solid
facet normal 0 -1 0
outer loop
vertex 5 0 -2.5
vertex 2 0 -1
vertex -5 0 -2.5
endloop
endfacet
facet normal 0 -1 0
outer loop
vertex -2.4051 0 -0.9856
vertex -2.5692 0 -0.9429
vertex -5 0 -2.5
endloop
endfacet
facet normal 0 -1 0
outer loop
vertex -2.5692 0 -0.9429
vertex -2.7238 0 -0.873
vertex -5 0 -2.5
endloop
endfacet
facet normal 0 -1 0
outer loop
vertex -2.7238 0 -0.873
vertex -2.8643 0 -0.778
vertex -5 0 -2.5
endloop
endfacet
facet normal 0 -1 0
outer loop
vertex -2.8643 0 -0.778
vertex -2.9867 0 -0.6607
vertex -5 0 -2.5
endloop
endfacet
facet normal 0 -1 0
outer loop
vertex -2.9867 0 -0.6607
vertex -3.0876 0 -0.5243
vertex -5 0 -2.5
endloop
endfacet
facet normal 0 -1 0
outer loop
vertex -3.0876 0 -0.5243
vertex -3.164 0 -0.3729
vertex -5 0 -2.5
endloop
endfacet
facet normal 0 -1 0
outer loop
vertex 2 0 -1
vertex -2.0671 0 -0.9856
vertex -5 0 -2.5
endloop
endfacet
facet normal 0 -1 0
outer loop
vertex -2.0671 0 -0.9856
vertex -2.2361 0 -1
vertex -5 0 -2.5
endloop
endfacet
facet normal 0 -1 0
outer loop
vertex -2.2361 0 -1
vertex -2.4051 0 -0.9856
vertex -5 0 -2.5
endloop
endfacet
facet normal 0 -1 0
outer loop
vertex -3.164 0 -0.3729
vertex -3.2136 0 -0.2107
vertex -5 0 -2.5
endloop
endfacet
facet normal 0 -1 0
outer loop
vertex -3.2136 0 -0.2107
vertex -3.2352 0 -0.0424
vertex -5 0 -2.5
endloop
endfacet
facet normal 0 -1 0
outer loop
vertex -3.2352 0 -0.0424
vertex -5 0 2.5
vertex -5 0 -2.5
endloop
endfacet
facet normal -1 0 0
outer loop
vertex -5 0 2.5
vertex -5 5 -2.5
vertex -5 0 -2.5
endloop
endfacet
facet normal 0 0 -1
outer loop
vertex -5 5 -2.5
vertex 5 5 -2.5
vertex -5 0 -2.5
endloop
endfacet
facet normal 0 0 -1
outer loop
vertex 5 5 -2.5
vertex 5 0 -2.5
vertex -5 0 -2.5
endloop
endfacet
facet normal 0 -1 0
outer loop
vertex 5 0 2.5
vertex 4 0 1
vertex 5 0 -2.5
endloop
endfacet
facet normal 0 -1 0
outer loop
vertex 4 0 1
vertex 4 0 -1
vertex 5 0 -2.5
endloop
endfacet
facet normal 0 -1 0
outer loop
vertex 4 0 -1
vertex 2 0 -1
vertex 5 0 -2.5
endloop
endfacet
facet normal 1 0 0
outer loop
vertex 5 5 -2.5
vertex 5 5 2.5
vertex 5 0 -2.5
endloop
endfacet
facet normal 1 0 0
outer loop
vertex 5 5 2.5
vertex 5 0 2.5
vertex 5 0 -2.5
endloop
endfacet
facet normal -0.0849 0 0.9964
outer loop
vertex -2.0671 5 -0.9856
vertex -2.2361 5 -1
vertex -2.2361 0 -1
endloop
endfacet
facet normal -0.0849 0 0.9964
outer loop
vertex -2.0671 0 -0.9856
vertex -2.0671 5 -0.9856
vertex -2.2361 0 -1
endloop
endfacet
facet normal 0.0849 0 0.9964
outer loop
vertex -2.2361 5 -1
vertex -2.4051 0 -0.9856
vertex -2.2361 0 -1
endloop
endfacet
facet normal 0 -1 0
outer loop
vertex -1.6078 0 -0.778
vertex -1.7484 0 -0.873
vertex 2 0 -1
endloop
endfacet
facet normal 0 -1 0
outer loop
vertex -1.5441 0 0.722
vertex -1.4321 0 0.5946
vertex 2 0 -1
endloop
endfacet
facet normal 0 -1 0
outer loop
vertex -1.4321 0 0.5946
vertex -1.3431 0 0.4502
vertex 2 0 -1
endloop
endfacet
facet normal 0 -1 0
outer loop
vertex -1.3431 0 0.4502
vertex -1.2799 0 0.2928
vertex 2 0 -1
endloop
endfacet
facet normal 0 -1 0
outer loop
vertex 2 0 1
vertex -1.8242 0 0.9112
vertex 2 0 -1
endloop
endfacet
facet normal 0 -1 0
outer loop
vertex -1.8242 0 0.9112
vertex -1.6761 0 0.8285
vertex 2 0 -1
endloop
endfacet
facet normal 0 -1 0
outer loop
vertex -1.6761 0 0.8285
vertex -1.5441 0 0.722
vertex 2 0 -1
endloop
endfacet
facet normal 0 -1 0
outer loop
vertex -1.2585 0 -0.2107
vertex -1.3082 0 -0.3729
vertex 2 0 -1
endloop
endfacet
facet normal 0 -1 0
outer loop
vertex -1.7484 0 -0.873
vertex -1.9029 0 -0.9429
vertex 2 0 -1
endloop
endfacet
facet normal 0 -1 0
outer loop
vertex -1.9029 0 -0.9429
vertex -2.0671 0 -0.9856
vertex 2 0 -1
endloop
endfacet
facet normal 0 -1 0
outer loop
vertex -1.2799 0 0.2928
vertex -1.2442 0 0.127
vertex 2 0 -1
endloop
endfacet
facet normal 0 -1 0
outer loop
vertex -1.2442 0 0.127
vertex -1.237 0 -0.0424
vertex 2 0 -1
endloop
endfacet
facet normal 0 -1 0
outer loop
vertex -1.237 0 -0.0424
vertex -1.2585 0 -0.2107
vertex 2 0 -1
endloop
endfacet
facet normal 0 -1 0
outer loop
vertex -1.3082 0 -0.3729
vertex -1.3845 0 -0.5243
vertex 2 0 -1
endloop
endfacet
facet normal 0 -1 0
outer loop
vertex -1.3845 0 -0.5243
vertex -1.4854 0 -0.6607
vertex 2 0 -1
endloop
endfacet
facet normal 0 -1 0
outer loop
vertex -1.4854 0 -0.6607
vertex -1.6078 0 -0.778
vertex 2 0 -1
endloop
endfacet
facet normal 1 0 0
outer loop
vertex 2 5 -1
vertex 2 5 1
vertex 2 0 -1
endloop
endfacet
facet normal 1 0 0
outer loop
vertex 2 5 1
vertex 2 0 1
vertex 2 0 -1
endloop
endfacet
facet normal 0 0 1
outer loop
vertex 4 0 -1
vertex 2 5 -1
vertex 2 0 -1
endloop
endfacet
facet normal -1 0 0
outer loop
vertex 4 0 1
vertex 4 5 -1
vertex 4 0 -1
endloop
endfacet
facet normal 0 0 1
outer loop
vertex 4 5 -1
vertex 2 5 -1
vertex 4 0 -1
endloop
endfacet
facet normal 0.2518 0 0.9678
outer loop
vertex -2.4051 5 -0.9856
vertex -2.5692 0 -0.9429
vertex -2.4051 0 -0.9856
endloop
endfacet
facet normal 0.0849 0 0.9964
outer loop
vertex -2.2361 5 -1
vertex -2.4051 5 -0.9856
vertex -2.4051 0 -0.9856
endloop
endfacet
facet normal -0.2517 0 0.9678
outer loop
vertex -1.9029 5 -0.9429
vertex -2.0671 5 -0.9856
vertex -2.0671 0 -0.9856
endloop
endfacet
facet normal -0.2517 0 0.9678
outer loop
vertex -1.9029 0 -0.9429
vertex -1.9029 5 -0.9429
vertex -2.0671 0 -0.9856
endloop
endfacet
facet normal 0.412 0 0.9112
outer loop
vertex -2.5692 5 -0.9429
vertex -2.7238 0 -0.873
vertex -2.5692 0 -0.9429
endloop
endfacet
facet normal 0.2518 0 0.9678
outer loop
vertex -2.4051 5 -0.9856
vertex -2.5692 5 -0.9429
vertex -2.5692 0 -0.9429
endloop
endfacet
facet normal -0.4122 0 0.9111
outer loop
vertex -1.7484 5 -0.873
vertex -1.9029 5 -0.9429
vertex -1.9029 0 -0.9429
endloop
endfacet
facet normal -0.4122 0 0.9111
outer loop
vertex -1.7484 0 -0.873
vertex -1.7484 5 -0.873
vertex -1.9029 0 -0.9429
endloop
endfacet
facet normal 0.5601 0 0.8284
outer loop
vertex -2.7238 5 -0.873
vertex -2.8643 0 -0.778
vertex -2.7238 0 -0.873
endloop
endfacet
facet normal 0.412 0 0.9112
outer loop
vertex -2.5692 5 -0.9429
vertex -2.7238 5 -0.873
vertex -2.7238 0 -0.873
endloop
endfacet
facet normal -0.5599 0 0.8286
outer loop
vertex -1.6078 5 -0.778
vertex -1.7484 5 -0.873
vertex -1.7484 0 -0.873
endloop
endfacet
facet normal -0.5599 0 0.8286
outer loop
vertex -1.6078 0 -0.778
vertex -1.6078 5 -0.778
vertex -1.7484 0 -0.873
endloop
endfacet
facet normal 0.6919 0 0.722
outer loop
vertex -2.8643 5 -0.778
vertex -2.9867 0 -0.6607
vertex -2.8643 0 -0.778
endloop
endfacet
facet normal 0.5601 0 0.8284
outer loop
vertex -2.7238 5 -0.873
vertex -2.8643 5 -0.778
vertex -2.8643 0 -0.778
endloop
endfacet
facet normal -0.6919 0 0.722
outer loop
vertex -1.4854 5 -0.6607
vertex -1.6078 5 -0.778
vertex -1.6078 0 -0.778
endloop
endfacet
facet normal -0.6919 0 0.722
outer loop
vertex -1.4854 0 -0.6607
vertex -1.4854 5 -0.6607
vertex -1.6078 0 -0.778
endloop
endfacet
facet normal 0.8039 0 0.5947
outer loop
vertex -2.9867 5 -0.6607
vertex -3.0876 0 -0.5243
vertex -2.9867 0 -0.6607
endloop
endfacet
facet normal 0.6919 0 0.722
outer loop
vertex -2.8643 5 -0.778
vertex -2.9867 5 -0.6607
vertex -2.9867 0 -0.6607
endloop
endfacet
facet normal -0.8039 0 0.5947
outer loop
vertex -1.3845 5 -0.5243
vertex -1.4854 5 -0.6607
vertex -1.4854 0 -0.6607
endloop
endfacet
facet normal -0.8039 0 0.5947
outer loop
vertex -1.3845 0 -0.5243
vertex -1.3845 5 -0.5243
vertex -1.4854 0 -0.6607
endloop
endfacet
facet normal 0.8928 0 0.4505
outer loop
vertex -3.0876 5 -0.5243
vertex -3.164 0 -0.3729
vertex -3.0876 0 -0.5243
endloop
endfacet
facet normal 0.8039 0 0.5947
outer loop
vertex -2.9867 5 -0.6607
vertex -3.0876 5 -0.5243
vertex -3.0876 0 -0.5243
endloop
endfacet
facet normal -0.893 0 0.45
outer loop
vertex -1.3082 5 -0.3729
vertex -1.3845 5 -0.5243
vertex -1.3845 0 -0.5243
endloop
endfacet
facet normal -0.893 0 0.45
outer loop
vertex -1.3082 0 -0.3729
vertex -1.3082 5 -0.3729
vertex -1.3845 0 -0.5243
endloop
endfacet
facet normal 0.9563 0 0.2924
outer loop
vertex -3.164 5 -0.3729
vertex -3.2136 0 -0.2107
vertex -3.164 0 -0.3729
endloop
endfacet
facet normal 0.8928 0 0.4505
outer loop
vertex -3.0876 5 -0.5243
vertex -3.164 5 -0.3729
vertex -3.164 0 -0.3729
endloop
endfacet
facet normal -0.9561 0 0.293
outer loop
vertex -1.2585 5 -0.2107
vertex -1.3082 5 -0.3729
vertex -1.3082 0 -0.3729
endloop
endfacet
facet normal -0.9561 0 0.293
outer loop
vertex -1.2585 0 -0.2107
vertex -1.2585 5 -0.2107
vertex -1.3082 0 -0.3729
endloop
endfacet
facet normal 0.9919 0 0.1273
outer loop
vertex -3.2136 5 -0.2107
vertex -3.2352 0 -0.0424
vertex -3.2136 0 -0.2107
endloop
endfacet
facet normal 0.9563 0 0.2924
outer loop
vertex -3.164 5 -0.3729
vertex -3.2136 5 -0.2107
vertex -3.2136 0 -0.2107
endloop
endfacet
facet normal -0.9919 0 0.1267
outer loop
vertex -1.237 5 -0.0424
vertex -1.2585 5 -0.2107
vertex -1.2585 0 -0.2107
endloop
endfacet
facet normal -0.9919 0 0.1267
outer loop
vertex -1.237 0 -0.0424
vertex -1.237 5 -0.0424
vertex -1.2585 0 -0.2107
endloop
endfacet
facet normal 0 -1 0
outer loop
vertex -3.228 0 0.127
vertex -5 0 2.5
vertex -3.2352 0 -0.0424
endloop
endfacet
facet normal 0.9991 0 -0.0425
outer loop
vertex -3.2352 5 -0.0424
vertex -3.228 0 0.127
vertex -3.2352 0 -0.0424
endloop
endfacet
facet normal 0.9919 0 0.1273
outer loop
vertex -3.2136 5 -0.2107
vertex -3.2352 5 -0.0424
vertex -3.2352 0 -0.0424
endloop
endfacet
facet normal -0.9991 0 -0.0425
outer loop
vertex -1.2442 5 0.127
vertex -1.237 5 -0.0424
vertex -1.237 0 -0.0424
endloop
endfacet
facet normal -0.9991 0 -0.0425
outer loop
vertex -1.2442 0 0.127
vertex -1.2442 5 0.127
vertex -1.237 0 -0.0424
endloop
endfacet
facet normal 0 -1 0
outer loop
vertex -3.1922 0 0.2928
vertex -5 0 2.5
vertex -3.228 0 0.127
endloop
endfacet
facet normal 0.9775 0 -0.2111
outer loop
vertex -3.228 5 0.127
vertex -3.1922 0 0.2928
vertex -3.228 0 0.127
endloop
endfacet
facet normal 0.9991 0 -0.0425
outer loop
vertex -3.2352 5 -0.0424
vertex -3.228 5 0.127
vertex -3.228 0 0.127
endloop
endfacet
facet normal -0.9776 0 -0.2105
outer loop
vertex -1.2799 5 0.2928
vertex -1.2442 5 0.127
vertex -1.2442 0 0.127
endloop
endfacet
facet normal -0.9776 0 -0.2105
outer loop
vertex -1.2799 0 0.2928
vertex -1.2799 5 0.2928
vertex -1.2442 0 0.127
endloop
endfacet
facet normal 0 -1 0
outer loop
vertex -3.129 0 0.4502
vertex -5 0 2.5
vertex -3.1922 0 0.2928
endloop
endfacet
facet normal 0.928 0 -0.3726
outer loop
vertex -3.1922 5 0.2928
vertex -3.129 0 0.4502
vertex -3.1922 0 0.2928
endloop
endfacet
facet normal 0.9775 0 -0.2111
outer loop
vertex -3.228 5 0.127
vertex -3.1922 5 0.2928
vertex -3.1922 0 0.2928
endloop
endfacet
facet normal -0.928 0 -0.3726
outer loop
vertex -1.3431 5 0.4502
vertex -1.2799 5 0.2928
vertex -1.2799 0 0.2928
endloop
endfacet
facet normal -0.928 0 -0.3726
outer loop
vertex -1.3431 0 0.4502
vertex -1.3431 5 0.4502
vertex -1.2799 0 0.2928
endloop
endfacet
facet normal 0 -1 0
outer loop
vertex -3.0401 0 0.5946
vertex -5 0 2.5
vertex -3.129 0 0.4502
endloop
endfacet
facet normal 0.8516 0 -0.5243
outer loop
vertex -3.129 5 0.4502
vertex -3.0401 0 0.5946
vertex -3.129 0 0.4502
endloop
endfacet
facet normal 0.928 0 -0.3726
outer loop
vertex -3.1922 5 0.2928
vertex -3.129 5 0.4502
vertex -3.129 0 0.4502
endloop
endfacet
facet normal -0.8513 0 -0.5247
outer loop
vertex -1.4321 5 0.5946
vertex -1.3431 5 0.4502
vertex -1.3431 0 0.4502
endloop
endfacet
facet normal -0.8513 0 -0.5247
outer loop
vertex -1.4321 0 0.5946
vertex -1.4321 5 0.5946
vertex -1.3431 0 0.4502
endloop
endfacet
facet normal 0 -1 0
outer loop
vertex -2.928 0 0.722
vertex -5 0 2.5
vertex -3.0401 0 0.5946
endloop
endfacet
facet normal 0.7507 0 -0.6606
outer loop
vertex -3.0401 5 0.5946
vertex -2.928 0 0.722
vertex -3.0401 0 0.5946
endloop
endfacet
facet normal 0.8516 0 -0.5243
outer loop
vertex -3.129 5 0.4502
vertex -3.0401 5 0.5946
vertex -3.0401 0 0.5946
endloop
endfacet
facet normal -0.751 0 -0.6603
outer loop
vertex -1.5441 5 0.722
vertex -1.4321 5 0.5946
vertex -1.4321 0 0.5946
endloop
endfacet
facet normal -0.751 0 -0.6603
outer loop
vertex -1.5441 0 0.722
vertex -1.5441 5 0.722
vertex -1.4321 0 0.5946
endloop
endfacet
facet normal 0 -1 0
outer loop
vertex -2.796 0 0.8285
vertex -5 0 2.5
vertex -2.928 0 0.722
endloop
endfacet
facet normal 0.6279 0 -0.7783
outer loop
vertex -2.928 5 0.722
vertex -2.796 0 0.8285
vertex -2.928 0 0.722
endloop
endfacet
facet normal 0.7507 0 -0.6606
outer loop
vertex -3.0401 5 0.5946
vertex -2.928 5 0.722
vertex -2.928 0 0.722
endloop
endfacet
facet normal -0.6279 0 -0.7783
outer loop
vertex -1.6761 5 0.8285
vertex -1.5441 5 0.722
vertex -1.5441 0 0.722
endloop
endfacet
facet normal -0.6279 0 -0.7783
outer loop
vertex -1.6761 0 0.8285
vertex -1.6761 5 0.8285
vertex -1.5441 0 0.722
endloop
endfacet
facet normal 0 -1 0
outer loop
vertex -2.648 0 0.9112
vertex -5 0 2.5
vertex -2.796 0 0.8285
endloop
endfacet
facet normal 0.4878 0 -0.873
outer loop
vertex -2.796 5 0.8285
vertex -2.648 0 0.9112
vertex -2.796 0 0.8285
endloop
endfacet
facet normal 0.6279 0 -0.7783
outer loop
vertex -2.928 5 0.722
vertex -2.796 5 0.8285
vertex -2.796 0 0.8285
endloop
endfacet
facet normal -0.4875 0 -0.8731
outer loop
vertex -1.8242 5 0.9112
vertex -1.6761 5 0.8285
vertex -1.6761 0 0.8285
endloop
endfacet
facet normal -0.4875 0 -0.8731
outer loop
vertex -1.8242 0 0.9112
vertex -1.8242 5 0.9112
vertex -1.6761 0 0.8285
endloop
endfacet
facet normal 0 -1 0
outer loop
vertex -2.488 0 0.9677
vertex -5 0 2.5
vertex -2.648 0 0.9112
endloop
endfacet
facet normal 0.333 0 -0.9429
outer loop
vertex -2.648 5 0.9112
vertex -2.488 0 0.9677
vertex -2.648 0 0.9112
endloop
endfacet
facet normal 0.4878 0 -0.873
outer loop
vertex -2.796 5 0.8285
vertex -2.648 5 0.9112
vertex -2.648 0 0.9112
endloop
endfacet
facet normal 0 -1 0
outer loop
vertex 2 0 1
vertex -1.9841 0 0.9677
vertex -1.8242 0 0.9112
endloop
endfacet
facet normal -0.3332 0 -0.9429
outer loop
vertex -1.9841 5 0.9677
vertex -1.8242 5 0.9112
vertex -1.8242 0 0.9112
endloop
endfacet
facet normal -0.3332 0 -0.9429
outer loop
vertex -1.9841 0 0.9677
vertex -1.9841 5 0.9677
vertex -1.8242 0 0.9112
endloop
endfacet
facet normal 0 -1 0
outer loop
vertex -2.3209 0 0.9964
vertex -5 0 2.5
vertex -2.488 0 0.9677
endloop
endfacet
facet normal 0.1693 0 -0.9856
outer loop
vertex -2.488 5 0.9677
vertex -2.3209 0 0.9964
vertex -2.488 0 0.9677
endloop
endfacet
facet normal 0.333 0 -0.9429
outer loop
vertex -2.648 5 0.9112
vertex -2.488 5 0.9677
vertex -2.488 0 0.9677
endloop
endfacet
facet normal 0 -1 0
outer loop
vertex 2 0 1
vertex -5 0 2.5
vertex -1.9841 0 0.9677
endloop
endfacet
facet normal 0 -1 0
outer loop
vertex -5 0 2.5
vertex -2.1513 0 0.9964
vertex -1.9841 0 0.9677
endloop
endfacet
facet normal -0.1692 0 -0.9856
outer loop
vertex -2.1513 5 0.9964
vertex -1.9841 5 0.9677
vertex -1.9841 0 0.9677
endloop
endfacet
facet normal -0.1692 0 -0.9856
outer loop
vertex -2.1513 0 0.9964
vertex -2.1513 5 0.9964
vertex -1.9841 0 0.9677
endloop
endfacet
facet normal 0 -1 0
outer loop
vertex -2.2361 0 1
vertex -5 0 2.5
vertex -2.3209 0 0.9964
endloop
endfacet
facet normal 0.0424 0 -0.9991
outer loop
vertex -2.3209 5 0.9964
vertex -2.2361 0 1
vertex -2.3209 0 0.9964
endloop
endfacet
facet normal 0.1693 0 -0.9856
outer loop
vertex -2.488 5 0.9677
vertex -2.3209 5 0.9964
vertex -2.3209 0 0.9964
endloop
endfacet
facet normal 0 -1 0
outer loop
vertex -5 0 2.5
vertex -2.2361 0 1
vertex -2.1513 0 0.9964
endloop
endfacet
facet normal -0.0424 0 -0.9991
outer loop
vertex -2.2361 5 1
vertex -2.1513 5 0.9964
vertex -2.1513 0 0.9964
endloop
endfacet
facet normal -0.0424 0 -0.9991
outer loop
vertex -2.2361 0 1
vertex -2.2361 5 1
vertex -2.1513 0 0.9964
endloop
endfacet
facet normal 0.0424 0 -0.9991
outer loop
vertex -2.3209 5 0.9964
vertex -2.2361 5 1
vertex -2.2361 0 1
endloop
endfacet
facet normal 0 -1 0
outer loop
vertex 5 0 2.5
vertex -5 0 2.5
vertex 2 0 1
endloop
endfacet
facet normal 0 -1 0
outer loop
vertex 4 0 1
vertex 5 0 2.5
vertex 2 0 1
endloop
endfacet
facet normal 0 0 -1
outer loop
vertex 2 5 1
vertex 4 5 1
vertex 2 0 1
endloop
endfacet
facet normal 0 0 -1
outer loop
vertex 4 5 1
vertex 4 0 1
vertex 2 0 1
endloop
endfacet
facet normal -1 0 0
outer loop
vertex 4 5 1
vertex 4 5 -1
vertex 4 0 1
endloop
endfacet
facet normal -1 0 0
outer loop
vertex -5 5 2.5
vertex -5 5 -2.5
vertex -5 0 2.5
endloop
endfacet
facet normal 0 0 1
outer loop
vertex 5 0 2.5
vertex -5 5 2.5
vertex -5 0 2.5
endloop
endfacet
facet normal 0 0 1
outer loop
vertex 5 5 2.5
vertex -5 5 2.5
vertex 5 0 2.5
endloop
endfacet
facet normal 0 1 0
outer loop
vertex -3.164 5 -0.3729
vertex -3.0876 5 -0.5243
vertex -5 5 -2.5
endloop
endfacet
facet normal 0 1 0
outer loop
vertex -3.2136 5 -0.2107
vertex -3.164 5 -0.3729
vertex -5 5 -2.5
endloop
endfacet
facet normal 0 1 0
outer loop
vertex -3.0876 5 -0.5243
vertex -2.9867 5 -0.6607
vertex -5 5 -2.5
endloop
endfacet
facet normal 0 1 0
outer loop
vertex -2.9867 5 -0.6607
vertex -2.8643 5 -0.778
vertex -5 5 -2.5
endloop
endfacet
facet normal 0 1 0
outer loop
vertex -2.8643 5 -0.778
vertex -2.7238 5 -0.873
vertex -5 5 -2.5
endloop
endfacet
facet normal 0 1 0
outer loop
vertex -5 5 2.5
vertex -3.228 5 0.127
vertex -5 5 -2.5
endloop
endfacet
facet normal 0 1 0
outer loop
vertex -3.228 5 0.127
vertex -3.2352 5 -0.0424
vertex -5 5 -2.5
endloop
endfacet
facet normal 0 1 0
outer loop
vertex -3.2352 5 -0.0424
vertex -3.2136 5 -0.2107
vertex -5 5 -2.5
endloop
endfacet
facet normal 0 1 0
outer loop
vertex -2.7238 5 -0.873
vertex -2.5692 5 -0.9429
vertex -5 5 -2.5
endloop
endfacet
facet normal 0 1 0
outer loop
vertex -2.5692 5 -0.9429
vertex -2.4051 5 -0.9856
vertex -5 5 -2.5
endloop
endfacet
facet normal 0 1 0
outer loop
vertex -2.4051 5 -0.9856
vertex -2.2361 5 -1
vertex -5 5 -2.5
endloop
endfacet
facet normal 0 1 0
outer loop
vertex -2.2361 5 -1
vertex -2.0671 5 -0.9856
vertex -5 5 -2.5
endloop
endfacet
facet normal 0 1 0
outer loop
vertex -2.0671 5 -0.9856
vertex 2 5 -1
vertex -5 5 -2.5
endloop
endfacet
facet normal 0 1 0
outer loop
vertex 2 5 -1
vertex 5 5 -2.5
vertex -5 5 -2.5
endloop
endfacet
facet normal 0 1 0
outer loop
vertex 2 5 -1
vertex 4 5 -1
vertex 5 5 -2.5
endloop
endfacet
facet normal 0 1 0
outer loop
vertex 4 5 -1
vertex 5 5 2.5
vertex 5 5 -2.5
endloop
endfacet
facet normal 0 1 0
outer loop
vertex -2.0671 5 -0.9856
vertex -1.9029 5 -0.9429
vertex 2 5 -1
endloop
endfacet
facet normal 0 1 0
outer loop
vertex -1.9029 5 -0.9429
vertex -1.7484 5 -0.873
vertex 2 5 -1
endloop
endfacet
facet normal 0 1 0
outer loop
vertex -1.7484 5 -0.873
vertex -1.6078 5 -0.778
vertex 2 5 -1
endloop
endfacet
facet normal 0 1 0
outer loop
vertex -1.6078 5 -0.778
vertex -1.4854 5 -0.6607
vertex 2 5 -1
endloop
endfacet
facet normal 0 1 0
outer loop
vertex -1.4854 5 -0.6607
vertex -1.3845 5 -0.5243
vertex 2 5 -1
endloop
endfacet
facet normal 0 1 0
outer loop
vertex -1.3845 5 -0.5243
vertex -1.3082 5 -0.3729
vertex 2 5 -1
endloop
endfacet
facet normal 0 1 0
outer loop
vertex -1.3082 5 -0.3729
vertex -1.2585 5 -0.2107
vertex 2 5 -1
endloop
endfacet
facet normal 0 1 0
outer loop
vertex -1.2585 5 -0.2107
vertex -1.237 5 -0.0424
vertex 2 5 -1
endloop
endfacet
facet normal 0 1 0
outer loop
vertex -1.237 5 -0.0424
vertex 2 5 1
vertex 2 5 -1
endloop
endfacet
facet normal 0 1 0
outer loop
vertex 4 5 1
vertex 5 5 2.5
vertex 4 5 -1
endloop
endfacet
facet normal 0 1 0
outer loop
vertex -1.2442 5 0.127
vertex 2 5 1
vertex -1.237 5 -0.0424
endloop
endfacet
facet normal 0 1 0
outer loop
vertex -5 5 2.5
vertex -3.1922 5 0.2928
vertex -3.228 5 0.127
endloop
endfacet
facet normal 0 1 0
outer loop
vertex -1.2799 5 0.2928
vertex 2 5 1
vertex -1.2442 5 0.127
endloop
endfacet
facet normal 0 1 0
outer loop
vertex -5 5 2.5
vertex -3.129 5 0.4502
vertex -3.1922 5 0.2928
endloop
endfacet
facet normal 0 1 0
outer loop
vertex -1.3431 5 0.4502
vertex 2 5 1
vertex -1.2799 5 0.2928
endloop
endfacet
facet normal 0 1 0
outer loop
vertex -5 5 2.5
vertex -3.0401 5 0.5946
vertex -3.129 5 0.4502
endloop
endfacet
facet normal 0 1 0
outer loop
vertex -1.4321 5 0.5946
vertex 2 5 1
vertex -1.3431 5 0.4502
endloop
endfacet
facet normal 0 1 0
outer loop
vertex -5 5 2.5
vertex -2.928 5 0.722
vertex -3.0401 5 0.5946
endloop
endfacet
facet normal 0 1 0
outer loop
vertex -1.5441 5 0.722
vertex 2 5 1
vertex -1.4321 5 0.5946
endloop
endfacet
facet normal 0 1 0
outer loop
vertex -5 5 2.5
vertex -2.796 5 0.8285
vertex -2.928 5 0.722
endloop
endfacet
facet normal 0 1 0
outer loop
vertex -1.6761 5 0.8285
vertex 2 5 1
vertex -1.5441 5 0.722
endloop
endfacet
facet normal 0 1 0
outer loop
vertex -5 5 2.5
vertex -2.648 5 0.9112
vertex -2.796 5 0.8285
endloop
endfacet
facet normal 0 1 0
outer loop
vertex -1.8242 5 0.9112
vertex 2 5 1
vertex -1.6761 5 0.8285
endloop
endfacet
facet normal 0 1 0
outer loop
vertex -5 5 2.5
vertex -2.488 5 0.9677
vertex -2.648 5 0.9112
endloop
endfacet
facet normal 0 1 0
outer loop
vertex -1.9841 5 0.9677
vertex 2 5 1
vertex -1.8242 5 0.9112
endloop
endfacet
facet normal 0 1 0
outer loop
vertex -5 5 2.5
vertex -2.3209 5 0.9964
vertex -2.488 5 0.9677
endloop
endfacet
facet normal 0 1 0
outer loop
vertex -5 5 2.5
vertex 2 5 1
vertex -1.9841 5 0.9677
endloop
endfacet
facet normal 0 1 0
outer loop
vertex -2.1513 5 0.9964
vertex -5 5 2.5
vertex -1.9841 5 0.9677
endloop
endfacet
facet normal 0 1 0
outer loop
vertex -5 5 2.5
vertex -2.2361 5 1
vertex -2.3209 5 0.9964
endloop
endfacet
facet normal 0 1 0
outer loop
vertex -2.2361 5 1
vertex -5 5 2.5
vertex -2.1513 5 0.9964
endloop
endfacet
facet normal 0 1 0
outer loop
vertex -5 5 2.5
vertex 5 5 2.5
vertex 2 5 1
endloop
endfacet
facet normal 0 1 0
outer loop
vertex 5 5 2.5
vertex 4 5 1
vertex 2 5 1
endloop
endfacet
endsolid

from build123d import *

# Parameters (mm, degrees)
SKETCH1_W           = 10
SKETCH1_H           = 5
SKETCH1_R           = 1
SKETCH1_W_2         = 2
SKETCH1_H_2         = 2
BOSS_EXTRUDE2_DEPTH = 5


with BuildPart() as part:
    # Sketch1 → Boss-Extrude2 (new body)
    with BuildSketch(Plane(origin=(0, 0, 0), x_dir=(1, 0, 0), z_dir=(0, 1, 0))):
        Rectangle(SKETCH1_W, SKETCH1_H)
        with Locations(Location((-2.236067977, 0, 0), (0, 0, 270))):
            Circle(SKETCH1_R, mode=Mode.SUBTRACT)
        with Locations((3, 0)):
            Rectangle(SKETCH1_W_2, SKETCH1_H_2, mode=Mode.SUBTRACT)
    extrude(amount=BOSS_EXTRUDE2_DEPTH)


solid = part.part
